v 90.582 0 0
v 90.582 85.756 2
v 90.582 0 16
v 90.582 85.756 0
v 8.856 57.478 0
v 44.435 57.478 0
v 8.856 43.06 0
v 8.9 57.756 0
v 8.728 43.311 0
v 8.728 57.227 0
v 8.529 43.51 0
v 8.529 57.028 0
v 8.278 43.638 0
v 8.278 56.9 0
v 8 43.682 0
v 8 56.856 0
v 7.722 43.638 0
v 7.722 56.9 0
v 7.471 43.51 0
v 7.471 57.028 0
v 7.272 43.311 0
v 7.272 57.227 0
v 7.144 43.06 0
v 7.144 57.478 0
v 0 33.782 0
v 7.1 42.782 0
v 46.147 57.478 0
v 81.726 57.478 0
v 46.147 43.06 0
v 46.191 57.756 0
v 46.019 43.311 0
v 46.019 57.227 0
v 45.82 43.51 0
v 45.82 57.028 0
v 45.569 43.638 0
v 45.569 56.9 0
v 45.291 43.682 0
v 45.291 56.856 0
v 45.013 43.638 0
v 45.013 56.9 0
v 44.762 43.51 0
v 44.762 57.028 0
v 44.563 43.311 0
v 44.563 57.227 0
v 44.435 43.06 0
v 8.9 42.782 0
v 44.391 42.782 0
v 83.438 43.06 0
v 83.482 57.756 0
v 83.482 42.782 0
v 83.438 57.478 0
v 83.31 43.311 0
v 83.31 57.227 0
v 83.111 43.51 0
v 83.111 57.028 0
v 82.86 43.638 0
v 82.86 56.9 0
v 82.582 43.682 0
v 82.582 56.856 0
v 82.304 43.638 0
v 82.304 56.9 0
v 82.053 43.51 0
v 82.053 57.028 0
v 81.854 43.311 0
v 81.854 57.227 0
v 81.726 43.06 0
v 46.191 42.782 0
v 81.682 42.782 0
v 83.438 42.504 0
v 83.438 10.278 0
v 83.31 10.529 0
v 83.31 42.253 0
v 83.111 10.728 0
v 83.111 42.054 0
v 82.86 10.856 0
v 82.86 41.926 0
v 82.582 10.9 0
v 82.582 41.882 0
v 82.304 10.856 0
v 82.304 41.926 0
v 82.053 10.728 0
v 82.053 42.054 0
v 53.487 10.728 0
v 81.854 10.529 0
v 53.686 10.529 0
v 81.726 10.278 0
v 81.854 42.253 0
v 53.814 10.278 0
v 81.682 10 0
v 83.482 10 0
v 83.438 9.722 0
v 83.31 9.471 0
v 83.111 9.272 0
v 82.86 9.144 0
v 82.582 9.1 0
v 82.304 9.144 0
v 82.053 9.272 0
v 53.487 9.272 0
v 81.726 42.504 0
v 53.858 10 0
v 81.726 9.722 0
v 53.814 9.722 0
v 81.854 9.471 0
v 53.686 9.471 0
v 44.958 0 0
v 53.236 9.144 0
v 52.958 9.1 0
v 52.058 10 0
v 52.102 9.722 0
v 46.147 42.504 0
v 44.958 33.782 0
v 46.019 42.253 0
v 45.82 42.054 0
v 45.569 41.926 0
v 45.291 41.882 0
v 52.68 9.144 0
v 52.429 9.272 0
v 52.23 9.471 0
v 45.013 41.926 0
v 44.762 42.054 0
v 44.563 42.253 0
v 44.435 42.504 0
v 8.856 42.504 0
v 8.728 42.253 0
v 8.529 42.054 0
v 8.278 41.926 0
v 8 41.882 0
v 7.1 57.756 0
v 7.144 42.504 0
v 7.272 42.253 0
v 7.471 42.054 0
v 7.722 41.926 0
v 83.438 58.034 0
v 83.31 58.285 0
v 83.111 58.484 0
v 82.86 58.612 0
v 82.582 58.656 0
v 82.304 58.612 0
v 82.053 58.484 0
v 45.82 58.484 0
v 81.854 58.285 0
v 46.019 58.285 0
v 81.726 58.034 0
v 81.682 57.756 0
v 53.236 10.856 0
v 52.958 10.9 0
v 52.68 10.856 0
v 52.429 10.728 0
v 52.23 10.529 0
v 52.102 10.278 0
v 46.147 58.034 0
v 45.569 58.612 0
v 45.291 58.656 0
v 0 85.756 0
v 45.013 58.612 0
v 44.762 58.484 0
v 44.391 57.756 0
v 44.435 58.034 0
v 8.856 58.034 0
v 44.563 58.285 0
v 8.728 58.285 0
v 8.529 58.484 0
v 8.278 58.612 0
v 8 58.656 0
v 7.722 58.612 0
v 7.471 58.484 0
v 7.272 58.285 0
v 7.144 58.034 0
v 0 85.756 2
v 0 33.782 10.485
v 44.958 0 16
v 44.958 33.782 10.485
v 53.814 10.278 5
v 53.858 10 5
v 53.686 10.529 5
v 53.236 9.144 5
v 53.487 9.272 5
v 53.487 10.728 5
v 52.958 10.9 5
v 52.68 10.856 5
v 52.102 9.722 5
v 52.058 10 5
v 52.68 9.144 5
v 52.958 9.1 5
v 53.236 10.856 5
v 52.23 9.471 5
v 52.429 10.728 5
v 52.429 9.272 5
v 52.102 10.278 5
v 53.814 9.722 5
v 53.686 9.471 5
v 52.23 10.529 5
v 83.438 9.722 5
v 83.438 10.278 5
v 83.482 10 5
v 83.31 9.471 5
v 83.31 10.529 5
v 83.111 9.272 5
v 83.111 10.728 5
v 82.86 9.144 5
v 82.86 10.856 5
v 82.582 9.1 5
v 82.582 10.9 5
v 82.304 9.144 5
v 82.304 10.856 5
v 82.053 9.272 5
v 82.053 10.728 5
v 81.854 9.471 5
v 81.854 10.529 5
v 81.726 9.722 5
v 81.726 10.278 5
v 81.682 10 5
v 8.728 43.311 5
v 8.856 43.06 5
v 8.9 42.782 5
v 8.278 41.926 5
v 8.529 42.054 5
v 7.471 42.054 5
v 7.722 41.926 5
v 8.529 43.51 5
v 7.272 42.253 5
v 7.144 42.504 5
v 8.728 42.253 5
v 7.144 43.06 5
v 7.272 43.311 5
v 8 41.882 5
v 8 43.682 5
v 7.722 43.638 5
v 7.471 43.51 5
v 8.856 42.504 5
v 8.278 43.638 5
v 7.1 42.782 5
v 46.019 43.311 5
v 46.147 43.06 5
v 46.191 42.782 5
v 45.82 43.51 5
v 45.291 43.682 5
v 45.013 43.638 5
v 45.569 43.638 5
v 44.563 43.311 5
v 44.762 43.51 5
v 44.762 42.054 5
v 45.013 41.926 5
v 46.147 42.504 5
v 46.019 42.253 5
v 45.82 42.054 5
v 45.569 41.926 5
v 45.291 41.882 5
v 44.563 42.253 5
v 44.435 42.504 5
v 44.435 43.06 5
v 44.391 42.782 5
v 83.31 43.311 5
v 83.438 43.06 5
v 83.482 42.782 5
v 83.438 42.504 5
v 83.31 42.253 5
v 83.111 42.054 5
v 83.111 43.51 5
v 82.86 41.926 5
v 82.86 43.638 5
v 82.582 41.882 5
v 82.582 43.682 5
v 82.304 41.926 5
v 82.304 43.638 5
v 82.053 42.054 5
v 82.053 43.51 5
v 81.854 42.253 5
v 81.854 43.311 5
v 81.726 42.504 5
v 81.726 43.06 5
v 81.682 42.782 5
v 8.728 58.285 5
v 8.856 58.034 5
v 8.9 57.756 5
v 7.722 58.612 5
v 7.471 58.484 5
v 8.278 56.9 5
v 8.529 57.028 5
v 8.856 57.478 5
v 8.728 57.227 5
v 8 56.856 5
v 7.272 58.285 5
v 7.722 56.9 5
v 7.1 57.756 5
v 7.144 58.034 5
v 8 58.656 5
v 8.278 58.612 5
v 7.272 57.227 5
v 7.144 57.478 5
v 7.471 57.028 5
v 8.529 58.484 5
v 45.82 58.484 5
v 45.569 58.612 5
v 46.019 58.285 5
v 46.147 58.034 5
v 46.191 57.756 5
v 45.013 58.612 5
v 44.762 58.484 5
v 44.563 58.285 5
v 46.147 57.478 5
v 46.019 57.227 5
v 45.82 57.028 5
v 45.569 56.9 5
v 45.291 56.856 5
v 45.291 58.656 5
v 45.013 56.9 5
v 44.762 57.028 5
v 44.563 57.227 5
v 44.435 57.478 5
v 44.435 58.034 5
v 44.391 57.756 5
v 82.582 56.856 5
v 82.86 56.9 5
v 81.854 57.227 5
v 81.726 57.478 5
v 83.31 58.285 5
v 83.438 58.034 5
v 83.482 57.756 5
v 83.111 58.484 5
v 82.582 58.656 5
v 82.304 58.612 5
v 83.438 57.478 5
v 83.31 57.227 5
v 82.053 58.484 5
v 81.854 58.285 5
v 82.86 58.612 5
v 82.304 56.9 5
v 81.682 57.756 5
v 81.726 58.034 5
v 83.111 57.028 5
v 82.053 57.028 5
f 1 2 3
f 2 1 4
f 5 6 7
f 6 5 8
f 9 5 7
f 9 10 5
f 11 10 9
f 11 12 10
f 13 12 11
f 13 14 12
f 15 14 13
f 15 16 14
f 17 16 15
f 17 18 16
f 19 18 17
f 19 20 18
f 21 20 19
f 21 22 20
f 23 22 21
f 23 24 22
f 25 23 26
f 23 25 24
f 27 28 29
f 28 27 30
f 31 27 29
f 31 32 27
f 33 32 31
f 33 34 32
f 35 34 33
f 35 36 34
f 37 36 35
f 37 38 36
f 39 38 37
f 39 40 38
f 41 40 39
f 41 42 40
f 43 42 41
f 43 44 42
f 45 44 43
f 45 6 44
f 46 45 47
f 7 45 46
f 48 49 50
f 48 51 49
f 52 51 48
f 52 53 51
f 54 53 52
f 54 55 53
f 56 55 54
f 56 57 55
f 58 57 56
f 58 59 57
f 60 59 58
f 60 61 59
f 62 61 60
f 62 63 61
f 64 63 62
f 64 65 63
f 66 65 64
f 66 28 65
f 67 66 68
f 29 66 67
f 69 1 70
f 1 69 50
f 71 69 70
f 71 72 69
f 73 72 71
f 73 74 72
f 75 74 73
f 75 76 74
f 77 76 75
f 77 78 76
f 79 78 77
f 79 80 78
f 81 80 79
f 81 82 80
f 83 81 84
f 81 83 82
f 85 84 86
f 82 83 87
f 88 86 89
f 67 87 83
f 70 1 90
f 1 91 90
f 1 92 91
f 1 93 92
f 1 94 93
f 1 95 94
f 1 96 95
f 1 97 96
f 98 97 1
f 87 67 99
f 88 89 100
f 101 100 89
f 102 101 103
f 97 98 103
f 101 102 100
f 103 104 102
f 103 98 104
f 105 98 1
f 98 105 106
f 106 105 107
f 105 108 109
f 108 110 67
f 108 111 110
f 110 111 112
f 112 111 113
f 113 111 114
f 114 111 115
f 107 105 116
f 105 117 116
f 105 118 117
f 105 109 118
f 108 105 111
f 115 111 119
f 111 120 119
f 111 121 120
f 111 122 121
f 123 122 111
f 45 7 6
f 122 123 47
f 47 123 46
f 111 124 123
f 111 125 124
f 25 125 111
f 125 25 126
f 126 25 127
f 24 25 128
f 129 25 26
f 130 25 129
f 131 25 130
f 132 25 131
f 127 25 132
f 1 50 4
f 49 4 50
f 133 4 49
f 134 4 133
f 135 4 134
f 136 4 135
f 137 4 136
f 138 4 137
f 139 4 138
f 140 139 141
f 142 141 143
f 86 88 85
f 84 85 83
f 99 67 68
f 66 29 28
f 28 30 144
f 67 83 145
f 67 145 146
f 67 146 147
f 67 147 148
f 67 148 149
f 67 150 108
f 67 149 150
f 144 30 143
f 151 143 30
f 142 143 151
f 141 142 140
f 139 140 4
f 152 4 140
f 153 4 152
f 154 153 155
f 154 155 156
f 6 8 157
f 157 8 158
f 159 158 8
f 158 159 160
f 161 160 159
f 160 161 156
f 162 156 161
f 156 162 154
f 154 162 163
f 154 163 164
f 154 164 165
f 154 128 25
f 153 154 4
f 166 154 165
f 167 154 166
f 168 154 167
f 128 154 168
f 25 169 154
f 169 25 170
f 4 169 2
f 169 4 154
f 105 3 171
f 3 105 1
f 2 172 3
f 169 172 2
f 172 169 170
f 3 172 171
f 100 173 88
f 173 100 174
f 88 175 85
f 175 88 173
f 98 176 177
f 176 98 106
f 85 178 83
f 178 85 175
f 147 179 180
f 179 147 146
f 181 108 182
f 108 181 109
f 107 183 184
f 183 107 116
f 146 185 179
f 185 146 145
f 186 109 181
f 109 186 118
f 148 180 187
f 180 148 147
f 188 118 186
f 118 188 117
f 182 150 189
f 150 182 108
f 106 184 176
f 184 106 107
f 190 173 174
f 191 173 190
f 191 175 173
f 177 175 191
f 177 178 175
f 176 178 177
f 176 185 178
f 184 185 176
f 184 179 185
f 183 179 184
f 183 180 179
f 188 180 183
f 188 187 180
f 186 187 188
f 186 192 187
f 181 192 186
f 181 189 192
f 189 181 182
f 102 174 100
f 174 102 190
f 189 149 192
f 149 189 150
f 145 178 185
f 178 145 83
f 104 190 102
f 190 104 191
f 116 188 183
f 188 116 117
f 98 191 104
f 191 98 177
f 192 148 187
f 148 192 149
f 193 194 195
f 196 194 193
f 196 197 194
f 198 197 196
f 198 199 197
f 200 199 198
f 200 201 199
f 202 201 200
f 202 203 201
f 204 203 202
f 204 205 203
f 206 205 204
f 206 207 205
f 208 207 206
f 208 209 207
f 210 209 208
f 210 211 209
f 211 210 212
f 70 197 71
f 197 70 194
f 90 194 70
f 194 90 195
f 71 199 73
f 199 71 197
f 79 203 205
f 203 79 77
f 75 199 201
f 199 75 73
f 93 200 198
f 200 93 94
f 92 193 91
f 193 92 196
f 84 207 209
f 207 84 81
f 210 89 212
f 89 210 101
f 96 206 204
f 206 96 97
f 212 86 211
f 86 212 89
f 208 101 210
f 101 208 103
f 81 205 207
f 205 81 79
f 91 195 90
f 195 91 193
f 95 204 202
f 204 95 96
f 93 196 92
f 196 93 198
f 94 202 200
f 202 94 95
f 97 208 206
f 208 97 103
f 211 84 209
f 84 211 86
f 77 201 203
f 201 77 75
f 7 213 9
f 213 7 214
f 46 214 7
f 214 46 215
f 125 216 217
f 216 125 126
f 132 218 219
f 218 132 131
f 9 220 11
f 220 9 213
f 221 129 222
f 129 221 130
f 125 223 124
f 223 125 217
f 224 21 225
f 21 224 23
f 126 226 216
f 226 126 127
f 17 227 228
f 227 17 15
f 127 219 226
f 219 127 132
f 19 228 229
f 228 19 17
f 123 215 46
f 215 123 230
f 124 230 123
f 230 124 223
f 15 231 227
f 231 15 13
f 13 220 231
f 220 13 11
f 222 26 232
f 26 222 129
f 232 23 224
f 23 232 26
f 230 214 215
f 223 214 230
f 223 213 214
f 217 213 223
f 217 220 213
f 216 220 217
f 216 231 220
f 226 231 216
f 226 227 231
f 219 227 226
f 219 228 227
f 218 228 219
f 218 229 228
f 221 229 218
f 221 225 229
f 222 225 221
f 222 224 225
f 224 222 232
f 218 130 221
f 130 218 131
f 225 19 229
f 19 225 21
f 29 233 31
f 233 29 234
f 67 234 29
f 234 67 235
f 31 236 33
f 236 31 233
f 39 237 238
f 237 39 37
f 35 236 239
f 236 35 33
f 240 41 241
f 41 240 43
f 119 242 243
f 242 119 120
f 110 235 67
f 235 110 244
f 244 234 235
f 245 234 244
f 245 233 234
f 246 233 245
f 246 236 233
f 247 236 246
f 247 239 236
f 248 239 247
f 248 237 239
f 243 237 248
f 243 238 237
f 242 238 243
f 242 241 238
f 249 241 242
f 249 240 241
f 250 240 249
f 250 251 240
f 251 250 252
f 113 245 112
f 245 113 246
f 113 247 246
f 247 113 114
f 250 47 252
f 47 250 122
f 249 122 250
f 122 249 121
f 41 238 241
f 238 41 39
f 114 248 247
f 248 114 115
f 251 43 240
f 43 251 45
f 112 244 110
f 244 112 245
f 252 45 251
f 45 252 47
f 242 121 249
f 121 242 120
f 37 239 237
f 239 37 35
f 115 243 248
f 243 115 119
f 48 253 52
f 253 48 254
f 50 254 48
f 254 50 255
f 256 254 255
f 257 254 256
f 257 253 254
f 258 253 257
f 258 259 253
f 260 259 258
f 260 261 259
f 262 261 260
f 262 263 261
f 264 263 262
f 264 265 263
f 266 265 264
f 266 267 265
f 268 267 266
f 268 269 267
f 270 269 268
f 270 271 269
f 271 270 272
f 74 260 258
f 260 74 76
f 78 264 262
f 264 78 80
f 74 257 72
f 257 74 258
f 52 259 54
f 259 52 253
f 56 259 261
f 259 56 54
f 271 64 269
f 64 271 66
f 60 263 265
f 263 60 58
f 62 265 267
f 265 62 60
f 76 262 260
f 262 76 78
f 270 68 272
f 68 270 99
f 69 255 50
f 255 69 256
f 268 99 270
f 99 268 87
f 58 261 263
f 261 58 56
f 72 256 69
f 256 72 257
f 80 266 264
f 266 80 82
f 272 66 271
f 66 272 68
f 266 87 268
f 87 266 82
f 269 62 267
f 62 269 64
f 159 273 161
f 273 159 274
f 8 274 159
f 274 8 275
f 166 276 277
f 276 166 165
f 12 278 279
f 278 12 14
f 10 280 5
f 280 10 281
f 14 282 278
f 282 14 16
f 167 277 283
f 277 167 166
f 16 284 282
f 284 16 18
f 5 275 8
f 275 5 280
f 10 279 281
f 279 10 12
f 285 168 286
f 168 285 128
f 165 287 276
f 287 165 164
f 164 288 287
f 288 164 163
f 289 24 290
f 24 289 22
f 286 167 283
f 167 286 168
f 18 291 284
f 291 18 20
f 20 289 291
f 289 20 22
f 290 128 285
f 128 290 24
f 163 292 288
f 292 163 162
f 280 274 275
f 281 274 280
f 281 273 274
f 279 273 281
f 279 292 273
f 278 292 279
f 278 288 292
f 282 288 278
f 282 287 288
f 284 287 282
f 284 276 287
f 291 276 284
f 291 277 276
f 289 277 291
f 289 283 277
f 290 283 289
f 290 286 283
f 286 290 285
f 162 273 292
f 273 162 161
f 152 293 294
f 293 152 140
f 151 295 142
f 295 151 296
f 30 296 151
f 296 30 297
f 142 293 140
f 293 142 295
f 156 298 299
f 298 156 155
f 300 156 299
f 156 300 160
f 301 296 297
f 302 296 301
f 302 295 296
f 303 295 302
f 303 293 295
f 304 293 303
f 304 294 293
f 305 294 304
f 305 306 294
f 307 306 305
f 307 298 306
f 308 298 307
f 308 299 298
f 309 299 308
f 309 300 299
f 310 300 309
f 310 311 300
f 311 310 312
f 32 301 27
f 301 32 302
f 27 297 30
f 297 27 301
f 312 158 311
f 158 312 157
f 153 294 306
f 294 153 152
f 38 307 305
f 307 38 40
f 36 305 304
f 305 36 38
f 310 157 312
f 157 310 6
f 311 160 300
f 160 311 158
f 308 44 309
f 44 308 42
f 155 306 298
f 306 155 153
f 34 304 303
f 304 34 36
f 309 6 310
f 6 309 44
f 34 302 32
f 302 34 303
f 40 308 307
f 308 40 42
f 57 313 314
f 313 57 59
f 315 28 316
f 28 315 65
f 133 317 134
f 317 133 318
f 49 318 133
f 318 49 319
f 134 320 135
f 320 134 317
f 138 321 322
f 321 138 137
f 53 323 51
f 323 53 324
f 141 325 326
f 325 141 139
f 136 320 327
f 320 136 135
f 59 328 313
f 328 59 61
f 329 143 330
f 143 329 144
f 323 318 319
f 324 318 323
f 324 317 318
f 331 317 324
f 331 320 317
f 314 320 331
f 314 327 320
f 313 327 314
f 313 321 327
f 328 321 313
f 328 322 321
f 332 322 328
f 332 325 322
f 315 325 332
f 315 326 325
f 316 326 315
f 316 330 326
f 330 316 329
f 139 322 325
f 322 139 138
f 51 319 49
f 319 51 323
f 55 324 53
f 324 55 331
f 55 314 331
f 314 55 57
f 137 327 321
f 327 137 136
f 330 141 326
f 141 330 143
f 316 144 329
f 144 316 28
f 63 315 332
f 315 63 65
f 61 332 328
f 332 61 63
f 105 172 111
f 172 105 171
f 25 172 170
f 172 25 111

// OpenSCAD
// file: ../lib/ssd1306.scad
// SPDX-FileCopyrightText: 2022-2024 Rafael G. Martins <rafael@rafaelmartins.eng.br>
// SPDX-License-Identifier: CERN-OHL-S-2.0

ssd1306_pcb_thickness = 1.6;
ssd1306_pcb_base_height = 2;
ssd1306_pcb_base_d = 4;
ssd1306_pcb_base_screw_d = 1.8;
ssd1306_pcb_base_spacing_x = 23.5;
ssd1306_pcb_base_spacing_y = 23.8;
ssd1306_screen_width = 24.5;
ssd1306_screen_height = 13;
ssd1306_screen_distance_x = (ssd1306_pcb_base_spacing_x - ssd1306_screen_width) / 2;
ssd1306_screen_distance_y = 3.5;
ssd1306_pin_distance_y = 0.45;


module ssd1306_add(thickness) {
    translate([-ssd1306_pcb_base_d / 2, -ssd1306_pcb_base_d / 2, 0])
        cube([ssd1306_pcb_base_spacing_x + ssd1306_pcb_base_d,
              ssd1306_pcb_base_spacing_y + ssd1306_pcb_base_d,
              thickness]);

    for(i=[0:1])
        for(j=[0:1])
            translate([i * ssd1306_pcb_base_spacing_x, j * ssd1306_pcb_base_spacing_y, thickness])
                cylinder(ssd1306_pcb_base_height, d=ssd1306_pcb_base_d, $fn=20);
}


module ssd1306_sub(thickness) {
    translate([ssd1306_screen_distance_x, ssd1306_screen_distance_y, 0])
        cube([ssd1306_screen_width, ssd1306_screen_height, thickness]);

    for(i=[0:1])
        for(j=[0:1])
            translate([i * ssd1306_pcb_base_spacing_x, j * ssd1306_pcb_base_spacing_y, thickness])
                cylinder(ssd1306_pcb_base_height, d=ssd1306_pcb_base_screw_d, $fn=20);
}
// file: settings.scad
// SPDX-FileCopyrightText: 2022-2024 Rafael G. Martins <rafael@rafaelmartins.eng.br>
// SPDX-License-Identifier: CERN-OHL-S-2.0

include <../lib/ssd1306.scad>

screw_d = 2;
screw_h = 8;
thickness = 2;
gap = 0;

front_screw_padding = 3.5;

pcb_base_d = 5;
pcb_base_screw_d = 1.8;
pcb_screw_padding = 2.54;
pcb_thickness = 1.6;

pcb_gap = 1;
pcb_padding_x = thickness + pcb_gap;
pcb_padding_y = thickness + pcb_gap;

display_pcb_length = 39.624;
display_pcb_width = 33.782;

display_pcb0_x = pcb_padding_x;
display_pcb0_y = pcb_padding_y;

display_length = display_pcb_length + 2 * pcb_padding_x;
display_width = display_pcb_width + pcb_padding_y;

switches_pcb_length = 84.582;
switches_pcb_width = 45.974;

switches_length = switches_pcb_length + 2 * pcb_padding_x;
switches_width = switches_pcb_width + 2 * pcb_padding_y;

switches_pcb_base_distance_x = 39.751;
switches_pcb_base_distance_y = 20.447;

oled_socket_height = 8.5;
oled_pin0_y = 5.334;
oled0_x = (display_length - ssd1306_pcb_base_spacing_x) / 2;
oled0_y = display_pcb0_y + oled_pin0_y + ssd1306_pin_distance_y;

display_pcb_base_distance = 34.544;
display_pcb_base_height = 2.8 + oled_socket_height + ssd1306_pcb_thickness + ssd1306_pcb_base_height;

switches_pcb_base_height = 6 - thickness;

usb_height = 4.4;
usb_width = 8.2;
usb_distance_x = pcb_padding_x + 29.210 - usb_width / 2;
usb_distance_z = thickness + display_pcb_base_height + pcb_thickness - 0.1;

display_height = usb_distance_z + usb_height + 0.8 + thickness;
display_height_in = display_pcb_base_height - switches_pcb_base_height - thickness;

switches_height = display_height - display_pcb_base_height + switches_pcb_base_height;

led0_x = 37.211;
led0_y = 15.24;
led_d = 3.2;

key_dim = 16;
key_distance = 19.304;
key0_x = 13.335 - key_dim / 2;
key0_y = key0_x;

base_screw_d = 1.8;
base_screw_h = 5;
base_screw_padding = 8;
base_screw_padding_bottom = 25;

base_length = switches_length;
base_width = display_width + switches_width - pcb_gap - thickness;
base_height = 16;

back_screw3_padding = 10;
// main file
// SPDX-FileCopyrightText: 2022-2024 Rafael G. Martins <rafael@rafaelmartins.eng.br>
// SPDX-License-Identifier: CERN-OHL-S-2.0

// should print upside down

include <settings.scad>

display_width_ = display_width - 2 * (thickness + gap);
switches_width_ = switches_width - 2 * (thickness + gap);


difference() {
    union() {
        cube([base_length, base_width, thickness]);

        translate([0, 0, thickness])
            rotate([90, 0, 90])
            linear_extrude(height=base_length)
                polygon([[0, 0], [base_width, 0], [0, base_height - thickness]]);
    }

    cube([base_length - display_length, display_width_ + 2 * gap + pcb_gap, base_height]);

    translate([base_length - display_length, thickness + gap, 0]) {
        translate([base_screw_padding, base_screw_padding, 0])
            cylinder(h=base_screw_h, d=base_screw_d, $fn=20);
        translate([display_length - base_screw_padding, base_screw_padding, 0])
            cylinder(h=base_screw_h, d=base_screw_d, $fn=20);
    }

    translate([0, display_width_ + thickness + gap, 0]) {
        translate([base_screw_padding, base_screw_padding, 0])
            cylinder(h=base_screw_h, d=base_screw_d, $fn=20);
        translate([switches_length / 2, base_screw_padding, 0])
            cylinder(h=base_screw_h, d=base_screw_d, $fn=20);
        translate([switches_length - base_screw_padding, base_screw_padding, 0])
            cylinder(h=base_screw_h, d=base_screw_d, $fn=20);
        translate([base_screw_padding, switches_width_ - base_screw_padding_bottom, 0])
            cylinder(h=base_screw_h, d=base_screw_d, $fn=20);
        translate([switches_length / 2, switches_width_ - base_screw_padding_bottom, 0])
            cylinder(h=base_screw_h, d=base_screw_d, $fn=20);
        translate([switches_length - base_screw_padding, switches_width_ - base_screw_padding_bottom, 0])
            cylinder(h=base_screw_h, d=base_screw_d, $fn=20);
    }
}
